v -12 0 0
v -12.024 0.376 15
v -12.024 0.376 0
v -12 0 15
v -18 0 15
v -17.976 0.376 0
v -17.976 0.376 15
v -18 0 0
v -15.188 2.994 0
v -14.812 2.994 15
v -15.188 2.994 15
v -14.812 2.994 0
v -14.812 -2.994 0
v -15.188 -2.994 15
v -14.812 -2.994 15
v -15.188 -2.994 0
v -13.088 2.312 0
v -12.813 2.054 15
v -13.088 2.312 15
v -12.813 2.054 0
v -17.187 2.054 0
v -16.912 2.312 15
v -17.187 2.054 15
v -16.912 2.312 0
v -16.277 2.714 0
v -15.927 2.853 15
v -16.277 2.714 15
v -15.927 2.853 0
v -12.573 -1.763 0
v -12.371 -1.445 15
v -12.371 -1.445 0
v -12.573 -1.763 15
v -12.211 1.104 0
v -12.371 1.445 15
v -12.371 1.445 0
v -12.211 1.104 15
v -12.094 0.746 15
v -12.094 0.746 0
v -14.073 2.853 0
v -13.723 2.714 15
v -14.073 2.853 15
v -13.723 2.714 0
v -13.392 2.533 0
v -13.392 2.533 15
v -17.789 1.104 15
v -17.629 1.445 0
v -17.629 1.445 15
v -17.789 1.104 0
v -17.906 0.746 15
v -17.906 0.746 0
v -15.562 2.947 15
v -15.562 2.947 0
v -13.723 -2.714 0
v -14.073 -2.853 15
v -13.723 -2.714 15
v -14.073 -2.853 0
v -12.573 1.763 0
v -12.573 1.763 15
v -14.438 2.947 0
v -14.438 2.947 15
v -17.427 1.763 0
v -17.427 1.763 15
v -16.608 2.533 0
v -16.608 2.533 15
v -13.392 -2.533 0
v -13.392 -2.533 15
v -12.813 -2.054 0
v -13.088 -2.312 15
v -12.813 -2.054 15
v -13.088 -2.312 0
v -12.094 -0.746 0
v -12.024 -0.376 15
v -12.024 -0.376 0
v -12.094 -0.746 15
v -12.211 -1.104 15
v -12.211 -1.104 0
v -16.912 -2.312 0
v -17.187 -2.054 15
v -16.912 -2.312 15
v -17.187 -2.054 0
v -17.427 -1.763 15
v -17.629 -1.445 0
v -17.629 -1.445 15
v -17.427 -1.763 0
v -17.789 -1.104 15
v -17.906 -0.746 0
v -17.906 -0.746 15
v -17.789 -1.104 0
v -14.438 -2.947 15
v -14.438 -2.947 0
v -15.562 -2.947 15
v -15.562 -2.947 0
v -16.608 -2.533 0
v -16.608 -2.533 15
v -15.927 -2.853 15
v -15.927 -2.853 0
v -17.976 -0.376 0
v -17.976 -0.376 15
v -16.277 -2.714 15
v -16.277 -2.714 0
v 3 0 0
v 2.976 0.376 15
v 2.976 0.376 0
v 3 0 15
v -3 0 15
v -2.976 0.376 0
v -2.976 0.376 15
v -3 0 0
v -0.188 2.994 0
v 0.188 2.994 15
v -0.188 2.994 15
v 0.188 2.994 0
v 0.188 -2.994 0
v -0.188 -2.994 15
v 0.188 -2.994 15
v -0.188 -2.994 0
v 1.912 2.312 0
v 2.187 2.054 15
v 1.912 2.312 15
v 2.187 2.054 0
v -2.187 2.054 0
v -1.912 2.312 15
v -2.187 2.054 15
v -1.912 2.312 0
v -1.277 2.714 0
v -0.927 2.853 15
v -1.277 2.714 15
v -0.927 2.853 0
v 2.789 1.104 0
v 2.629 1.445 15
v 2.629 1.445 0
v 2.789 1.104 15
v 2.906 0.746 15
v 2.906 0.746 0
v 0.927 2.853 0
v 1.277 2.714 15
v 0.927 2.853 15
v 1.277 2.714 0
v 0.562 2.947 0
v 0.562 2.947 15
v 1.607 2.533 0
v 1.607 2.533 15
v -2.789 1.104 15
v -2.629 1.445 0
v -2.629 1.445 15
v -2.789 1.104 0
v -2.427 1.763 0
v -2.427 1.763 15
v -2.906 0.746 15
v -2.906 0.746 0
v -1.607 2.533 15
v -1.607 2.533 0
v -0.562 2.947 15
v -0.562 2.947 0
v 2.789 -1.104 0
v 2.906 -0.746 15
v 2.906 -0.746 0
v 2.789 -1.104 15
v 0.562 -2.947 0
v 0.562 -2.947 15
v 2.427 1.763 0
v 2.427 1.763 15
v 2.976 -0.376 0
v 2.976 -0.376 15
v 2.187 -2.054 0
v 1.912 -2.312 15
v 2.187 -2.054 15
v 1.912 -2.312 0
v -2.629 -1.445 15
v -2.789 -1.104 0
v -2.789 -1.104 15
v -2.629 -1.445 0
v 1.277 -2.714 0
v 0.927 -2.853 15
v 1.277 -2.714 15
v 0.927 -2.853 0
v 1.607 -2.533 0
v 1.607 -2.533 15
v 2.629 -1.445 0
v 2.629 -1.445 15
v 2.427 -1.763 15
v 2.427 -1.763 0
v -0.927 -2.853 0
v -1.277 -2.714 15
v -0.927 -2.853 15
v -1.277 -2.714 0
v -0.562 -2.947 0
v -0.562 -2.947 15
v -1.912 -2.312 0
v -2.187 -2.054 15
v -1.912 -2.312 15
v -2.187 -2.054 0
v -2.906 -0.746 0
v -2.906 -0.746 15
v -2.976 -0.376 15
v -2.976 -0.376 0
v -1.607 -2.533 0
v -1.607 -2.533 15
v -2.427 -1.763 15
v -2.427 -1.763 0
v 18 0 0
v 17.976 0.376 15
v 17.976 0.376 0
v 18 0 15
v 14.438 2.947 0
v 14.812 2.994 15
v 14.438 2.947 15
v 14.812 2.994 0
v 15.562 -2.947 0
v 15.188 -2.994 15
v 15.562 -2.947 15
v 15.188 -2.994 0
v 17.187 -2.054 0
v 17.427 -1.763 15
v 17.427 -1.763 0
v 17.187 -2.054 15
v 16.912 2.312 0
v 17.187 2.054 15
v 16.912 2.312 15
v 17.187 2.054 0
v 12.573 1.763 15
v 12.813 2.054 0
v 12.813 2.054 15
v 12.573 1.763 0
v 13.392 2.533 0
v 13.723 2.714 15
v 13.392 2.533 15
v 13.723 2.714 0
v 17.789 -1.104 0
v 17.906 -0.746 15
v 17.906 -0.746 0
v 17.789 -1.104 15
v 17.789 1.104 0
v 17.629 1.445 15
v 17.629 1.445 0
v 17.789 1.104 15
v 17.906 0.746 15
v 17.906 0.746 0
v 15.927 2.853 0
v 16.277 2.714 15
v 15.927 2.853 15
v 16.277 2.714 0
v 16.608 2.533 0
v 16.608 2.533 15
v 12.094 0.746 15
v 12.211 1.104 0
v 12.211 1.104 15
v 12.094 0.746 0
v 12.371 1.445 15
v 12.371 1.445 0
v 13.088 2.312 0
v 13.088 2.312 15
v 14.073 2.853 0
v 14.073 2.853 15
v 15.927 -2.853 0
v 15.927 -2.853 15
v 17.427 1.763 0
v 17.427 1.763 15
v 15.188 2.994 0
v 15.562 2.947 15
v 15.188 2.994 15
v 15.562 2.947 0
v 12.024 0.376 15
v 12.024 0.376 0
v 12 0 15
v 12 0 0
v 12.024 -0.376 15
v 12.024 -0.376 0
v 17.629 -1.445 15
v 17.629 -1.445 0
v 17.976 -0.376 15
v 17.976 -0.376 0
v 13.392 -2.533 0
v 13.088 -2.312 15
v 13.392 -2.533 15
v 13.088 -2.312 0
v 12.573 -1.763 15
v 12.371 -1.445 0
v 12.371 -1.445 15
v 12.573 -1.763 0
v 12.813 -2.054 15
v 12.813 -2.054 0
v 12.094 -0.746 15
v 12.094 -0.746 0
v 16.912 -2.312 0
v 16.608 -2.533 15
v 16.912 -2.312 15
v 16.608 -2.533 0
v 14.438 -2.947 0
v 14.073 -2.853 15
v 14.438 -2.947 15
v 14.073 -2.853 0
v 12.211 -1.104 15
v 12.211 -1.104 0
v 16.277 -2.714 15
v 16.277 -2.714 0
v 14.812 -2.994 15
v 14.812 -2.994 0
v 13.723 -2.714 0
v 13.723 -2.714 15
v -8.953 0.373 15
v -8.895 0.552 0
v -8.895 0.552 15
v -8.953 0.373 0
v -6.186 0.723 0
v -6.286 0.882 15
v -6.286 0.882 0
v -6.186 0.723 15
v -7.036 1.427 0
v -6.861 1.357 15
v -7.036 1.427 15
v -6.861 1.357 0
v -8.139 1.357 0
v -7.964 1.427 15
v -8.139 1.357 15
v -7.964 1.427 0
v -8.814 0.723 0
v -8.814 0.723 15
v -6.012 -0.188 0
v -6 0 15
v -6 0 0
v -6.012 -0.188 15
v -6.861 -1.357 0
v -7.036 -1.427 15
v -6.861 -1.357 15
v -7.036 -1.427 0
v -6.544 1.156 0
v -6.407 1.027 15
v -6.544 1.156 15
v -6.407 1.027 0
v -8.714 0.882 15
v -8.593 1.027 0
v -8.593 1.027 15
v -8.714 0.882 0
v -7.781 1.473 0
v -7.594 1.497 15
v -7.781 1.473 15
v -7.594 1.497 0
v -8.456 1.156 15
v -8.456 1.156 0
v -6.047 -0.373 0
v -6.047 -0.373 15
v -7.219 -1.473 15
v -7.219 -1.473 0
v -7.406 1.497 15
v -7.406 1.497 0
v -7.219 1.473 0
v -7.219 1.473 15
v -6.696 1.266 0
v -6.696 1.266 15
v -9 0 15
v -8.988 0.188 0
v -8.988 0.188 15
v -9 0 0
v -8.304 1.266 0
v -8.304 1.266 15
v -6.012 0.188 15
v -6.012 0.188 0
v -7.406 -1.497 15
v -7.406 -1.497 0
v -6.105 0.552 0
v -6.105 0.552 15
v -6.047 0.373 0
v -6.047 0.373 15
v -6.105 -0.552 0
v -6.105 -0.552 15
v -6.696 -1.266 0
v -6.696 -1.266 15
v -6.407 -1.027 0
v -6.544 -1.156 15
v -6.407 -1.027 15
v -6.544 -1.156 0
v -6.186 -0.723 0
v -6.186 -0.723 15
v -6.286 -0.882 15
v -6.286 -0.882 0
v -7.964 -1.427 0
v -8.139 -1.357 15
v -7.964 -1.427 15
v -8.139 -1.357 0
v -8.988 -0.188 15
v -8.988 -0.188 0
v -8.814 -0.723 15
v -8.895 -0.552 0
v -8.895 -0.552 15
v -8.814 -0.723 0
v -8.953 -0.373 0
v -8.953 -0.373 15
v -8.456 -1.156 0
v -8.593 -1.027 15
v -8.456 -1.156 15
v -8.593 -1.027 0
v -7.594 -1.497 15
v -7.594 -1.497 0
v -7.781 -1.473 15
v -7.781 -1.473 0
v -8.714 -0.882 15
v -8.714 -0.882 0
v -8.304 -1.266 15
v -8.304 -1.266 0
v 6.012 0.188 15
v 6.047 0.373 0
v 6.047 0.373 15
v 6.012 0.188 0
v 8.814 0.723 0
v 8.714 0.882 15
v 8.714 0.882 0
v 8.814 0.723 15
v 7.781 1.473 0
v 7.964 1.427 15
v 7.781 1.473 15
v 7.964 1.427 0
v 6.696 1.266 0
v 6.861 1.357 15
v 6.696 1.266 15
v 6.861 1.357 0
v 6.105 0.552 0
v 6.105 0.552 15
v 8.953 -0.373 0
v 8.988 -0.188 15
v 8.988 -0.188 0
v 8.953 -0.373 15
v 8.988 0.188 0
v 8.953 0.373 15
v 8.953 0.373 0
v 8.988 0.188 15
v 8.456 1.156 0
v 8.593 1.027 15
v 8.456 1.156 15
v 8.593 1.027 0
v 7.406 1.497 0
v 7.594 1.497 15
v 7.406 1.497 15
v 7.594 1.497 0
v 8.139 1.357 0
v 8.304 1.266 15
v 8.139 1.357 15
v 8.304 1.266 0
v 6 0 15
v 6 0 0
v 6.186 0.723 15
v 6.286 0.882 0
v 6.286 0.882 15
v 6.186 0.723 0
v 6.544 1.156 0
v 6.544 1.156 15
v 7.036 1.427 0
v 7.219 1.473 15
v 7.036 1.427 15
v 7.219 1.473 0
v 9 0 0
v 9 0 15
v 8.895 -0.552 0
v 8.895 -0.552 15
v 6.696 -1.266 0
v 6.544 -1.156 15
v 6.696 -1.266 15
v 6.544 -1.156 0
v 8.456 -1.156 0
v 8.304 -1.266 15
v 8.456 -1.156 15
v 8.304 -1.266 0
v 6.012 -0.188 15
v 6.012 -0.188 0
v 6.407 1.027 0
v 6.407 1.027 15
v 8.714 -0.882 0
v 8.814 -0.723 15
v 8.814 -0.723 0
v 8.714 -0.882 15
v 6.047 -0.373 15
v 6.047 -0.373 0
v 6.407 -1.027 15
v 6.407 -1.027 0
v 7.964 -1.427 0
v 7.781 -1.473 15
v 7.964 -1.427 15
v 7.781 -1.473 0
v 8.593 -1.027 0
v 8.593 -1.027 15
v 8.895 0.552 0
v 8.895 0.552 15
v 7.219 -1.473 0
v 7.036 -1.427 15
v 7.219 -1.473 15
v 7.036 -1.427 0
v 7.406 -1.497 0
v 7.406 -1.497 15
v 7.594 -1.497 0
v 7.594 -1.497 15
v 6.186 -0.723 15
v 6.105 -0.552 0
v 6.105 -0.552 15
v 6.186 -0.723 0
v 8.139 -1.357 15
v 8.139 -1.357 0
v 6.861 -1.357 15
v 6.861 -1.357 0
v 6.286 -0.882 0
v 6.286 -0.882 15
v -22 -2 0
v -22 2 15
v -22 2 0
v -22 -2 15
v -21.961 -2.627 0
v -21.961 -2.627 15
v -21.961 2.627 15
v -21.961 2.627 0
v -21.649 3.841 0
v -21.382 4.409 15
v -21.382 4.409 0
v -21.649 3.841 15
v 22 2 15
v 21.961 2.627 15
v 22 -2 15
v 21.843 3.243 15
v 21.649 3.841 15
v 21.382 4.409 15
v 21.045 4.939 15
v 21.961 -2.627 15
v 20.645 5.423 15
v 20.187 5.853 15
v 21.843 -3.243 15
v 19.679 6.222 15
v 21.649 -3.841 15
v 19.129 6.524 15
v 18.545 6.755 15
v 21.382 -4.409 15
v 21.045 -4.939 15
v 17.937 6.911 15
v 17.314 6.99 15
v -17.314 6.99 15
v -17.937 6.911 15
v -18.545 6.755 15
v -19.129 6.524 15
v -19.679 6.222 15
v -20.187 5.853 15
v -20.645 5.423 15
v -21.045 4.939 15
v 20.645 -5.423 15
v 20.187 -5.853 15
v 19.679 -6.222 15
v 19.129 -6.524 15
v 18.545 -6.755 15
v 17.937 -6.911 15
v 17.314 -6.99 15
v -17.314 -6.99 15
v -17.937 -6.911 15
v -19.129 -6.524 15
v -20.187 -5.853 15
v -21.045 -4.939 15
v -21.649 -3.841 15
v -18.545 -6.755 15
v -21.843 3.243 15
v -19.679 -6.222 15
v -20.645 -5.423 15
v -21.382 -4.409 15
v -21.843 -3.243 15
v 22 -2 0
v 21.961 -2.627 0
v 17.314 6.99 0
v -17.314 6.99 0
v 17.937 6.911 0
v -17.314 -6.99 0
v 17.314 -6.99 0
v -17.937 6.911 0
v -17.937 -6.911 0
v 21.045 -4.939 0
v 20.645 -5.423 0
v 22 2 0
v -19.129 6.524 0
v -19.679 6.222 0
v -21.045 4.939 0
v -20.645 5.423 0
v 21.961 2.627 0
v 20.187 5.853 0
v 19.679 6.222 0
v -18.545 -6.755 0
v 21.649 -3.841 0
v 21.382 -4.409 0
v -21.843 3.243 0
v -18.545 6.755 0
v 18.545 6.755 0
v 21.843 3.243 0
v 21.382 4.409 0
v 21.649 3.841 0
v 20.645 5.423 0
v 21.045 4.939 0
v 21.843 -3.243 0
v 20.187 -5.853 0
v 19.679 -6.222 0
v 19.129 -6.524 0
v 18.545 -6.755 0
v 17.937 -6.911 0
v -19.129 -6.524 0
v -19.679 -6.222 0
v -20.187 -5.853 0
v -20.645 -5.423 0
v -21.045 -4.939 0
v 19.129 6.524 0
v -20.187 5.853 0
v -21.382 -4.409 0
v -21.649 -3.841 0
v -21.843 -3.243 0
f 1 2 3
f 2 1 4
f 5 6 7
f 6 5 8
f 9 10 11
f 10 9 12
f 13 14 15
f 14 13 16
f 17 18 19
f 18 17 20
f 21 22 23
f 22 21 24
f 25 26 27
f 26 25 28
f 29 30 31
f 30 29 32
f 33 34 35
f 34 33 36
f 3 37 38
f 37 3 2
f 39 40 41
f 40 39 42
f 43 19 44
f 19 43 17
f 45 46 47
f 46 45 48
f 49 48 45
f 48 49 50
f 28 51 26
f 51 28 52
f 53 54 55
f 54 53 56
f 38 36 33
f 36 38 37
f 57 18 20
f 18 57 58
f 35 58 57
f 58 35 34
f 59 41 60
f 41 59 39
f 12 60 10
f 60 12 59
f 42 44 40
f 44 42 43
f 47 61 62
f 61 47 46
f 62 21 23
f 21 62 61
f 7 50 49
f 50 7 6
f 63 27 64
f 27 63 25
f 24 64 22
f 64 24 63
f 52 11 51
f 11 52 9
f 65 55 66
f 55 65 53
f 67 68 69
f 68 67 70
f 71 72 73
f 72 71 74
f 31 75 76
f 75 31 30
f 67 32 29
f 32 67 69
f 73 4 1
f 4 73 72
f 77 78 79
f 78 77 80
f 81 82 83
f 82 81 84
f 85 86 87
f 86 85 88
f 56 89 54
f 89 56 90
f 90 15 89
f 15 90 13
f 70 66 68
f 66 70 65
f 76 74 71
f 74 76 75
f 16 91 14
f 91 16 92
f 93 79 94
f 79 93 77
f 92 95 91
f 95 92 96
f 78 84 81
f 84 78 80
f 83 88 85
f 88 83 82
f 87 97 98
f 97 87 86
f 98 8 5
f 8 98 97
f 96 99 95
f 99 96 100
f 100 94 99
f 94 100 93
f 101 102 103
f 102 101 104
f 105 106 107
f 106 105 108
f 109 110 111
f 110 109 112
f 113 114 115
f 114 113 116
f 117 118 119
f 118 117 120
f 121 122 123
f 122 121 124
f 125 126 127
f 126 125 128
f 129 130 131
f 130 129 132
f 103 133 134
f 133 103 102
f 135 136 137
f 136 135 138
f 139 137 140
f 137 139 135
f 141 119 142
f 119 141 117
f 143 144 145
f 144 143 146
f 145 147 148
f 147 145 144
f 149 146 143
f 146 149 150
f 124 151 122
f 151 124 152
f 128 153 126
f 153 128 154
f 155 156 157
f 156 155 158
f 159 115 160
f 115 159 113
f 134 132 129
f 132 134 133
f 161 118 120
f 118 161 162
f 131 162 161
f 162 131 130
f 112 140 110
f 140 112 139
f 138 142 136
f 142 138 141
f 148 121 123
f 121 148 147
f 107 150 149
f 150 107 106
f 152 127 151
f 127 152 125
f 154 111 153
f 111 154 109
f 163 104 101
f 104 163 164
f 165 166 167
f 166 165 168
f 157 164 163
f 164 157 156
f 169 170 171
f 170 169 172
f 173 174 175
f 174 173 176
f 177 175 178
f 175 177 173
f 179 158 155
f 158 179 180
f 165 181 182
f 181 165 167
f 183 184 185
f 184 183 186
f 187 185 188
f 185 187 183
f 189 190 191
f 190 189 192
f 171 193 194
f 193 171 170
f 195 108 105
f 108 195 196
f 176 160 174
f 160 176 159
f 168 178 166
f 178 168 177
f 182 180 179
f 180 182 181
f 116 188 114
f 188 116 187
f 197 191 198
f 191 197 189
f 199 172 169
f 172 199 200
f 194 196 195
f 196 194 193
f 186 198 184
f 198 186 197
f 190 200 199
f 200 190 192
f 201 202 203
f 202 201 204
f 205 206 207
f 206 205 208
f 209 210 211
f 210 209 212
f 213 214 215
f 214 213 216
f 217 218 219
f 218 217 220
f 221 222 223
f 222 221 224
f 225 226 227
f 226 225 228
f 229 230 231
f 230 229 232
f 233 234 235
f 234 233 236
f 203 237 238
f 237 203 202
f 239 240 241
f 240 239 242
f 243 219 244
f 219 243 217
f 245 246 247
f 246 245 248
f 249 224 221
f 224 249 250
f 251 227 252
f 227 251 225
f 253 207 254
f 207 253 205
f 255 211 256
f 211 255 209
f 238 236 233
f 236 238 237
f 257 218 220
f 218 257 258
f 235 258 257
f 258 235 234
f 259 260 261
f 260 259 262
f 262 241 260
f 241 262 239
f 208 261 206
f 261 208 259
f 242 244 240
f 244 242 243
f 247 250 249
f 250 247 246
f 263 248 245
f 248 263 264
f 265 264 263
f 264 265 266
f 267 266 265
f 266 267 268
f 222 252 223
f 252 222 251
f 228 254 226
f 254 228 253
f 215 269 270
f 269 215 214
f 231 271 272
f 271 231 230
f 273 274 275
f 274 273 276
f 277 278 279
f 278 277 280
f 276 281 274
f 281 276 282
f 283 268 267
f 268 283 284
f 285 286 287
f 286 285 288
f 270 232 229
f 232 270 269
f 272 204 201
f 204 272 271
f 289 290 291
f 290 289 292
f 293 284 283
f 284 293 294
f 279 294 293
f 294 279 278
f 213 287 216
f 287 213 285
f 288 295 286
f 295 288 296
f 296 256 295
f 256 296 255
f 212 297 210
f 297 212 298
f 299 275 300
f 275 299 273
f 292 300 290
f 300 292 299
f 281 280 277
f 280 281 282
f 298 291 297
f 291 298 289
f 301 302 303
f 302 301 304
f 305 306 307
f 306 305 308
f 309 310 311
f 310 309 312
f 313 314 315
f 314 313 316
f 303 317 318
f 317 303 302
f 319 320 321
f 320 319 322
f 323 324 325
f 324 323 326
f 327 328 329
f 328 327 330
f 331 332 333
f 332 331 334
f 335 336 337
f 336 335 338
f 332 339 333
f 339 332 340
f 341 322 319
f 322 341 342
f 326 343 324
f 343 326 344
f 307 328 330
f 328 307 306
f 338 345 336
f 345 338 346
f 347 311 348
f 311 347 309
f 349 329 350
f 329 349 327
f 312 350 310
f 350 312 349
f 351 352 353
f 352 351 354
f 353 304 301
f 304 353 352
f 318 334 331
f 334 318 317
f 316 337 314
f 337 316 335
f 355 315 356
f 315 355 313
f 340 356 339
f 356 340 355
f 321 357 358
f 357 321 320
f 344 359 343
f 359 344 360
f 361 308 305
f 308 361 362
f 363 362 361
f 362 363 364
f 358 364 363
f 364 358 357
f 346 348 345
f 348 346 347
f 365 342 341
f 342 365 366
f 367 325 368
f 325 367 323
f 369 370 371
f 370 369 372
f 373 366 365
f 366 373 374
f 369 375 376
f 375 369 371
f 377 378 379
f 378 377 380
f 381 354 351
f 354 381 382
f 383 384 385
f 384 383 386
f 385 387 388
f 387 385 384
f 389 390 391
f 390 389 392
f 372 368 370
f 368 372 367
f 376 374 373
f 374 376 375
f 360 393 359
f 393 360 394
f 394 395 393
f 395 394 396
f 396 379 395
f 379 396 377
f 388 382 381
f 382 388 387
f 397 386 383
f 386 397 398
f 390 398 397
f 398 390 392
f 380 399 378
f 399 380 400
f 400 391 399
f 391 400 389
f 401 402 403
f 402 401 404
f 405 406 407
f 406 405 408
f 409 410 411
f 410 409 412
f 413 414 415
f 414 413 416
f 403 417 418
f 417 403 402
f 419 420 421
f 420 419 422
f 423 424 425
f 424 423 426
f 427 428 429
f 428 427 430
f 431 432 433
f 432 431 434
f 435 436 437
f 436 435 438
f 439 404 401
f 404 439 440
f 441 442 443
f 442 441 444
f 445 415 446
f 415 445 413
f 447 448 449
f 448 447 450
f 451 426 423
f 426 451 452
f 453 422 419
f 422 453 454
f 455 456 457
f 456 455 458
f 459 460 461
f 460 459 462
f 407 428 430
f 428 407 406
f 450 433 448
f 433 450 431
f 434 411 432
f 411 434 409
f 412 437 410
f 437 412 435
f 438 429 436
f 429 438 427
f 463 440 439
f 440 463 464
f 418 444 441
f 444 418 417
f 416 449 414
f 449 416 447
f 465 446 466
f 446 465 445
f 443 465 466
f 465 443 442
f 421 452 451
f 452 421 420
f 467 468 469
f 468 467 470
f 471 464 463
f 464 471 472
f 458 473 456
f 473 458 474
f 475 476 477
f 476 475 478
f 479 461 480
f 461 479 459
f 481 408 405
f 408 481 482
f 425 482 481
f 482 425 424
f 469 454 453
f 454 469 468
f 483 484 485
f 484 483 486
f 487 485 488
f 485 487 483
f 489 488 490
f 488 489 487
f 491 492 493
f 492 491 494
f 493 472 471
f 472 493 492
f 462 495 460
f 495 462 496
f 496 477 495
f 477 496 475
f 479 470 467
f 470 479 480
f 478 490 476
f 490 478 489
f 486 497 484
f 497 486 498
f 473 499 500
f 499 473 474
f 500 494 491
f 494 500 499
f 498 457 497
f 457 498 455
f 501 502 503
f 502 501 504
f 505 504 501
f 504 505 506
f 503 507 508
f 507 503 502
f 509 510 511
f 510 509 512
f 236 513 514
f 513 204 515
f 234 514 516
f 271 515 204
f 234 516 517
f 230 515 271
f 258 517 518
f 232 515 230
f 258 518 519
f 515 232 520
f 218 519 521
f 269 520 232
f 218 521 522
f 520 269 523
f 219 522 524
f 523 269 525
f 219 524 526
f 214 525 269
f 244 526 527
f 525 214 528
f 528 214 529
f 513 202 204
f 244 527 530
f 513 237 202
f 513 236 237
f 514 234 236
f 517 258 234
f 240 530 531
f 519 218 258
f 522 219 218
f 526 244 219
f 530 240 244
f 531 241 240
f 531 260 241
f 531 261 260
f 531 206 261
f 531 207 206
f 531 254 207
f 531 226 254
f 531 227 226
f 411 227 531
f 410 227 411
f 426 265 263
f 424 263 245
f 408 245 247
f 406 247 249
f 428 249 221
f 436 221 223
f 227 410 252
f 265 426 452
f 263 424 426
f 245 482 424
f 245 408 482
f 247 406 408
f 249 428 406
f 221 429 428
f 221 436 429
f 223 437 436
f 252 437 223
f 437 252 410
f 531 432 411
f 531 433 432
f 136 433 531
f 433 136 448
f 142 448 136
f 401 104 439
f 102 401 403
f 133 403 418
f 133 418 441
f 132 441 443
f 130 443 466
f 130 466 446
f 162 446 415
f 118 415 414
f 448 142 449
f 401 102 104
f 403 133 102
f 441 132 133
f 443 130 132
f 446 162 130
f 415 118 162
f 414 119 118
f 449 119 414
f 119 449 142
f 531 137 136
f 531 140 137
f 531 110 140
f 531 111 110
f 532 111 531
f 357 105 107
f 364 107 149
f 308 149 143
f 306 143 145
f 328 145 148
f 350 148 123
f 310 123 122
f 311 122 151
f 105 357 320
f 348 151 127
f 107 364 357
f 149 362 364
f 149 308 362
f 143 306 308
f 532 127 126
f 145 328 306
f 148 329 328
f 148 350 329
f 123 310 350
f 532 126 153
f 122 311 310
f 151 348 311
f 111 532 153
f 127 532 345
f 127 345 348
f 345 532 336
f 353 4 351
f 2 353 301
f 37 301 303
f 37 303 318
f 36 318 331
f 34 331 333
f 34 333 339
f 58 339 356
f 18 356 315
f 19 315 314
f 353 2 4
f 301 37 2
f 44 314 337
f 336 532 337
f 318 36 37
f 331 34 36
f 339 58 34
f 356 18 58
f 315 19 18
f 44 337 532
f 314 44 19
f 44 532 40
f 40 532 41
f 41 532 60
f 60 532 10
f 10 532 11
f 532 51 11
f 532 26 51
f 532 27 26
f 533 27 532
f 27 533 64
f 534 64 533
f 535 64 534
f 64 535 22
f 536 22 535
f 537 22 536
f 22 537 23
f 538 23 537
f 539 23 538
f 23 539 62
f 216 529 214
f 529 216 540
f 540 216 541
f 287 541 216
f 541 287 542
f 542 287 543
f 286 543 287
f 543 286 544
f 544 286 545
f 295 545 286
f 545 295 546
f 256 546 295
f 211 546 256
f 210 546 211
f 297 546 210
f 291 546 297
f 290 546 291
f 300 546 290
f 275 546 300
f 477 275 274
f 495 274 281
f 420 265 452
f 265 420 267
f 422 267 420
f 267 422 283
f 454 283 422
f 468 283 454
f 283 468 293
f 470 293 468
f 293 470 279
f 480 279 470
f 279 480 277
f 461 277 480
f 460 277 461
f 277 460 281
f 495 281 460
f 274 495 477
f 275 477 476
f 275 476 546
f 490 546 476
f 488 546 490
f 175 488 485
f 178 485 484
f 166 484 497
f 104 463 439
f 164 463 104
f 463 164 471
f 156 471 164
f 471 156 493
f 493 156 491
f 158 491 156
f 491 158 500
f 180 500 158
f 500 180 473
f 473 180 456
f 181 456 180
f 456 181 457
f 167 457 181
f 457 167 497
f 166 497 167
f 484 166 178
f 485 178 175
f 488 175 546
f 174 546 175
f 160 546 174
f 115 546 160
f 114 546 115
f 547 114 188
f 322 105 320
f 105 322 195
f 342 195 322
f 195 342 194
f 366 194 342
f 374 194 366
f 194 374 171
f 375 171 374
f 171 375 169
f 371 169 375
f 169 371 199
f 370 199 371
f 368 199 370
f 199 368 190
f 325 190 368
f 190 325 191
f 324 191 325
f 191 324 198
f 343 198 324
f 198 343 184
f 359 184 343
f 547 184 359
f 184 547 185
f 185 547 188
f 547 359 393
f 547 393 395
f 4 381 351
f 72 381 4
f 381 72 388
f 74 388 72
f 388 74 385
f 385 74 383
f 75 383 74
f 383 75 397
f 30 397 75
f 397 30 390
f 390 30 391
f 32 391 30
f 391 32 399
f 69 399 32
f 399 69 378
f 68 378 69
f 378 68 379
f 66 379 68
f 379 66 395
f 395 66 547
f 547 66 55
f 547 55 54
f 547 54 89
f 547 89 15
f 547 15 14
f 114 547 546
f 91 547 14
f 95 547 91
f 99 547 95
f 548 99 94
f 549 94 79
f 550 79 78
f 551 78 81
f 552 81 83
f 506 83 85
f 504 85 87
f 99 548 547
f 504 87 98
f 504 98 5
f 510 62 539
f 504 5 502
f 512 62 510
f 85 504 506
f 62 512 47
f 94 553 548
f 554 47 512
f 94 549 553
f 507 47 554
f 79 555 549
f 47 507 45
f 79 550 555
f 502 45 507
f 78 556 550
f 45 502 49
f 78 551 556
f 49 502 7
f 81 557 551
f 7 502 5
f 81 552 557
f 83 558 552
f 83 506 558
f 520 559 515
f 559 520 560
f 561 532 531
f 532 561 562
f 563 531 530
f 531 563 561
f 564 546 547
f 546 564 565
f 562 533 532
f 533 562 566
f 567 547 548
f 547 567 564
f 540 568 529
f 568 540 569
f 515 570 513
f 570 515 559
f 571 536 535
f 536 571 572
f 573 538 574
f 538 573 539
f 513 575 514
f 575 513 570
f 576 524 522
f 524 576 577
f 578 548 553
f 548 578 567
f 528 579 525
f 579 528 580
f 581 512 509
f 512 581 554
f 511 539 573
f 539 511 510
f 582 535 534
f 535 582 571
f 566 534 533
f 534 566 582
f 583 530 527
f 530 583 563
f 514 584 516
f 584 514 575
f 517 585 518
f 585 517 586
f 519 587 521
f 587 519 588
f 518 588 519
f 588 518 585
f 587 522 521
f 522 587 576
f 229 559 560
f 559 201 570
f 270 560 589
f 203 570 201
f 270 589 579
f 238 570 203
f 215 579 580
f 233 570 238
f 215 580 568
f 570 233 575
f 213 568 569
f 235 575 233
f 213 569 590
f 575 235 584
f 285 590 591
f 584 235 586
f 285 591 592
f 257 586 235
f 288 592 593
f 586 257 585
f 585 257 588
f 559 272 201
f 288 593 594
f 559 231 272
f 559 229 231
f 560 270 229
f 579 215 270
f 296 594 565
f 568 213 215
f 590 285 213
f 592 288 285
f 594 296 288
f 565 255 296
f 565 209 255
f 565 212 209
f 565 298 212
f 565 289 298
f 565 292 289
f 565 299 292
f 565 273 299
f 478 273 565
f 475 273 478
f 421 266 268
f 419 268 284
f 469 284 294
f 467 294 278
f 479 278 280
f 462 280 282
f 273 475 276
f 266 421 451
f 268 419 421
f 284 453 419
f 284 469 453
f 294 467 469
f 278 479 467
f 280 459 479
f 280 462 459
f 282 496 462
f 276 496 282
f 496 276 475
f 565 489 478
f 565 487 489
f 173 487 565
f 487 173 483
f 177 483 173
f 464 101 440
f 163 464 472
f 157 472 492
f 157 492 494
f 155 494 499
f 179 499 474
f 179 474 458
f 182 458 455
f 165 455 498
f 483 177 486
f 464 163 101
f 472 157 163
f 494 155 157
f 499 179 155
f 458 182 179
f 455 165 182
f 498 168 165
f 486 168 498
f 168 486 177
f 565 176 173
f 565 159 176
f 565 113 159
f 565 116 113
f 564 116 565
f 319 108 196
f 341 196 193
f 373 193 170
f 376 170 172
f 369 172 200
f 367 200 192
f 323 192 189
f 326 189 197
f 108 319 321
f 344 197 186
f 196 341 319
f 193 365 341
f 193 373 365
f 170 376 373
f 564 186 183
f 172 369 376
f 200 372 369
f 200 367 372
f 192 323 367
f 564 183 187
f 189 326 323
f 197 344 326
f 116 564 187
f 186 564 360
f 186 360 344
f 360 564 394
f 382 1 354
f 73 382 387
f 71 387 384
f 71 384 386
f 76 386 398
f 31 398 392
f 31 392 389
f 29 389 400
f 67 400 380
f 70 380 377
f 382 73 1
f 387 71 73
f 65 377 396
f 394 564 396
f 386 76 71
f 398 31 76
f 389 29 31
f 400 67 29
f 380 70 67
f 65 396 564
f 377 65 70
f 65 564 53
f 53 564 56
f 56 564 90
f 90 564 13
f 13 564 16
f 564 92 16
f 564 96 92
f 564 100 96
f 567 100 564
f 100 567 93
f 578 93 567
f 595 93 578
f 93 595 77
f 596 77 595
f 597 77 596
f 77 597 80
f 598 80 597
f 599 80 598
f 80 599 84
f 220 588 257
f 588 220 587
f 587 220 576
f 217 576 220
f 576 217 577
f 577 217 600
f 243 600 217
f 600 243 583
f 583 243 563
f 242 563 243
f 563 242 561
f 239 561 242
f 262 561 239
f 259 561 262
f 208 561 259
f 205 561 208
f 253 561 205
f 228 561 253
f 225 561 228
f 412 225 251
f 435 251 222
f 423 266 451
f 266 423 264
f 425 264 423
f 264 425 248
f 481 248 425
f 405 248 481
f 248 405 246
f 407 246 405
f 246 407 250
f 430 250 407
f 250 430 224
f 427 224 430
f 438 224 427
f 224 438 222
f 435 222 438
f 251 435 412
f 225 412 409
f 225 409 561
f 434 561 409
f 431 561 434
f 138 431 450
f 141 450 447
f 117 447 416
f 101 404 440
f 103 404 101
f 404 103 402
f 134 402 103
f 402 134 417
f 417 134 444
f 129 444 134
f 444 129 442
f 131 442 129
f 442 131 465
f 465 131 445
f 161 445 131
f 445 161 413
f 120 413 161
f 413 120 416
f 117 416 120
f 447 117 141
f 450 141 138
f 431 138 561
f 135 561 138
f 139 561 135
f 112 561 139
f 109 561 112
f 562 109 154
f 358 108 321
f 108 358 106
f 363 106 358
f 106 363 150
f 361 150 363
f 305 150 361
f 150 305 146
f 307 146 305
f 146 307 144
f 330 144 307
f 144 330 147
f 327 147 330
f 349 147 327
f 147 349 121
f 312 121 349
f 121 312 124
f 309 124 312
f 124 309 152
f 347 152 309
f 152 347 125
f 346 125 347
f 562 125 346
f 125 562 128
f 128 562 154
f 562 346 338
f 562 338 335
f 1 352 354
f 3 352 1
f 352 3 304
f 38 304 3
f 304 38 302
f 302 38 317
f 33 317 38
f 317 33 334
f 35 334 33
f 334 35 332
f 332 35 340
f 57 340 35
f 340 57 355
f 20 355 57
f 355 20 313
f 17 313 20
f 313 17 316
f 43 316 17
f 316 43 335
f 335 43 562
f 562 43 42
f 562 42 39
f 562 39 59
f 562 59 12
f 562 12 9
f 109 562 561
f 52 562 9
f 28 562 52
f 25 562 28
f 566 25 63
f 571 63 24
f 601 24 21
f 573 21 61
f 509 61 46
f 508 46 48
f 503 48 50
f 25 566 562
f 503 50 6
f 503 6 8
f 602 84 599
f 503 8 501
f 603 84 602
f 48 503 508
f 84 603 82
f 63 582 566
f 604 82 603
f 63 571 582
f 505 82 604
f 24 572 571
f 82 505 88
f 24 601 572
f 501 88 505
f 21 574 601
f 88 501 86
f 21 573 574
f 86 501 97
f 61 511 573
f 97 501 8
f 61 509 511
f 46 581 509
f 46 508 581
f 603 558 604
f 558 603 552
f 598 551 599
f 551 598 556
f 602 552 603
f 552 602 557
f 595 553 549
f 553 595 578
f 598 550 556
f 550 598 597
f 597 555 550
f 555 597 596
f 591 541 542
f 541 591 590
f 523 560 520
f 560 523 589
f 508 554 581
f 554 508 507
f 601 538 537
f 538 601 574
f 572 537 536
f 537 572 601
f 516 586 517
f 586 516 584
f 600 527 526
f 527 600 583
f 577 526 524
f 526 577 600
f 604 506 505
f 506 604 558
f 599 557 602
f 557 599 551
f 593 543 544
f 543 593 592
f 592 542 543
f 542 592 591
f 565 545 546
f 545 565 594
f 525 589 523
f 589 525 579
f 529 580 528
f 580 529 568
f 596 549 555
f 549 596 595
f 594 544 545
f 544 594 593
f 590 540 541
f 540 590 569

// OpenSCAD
$fn = 50;


difference() {
	union() {
		*color(alpha = 1.0000000000, c = "gray") {
			translate(v = [0, 7, 0]) {
				linear_extrude(height = 1) {
					text(font = "Arial:style=Bold", halign = "center", size = 4.5000000000, text = "COMMENT plate main", valign = "center");
				}
			}
		}
		hull() {
			translate(v = [-17.0000000000, 2.0000000000, 0]) {
				cylinder(h = 15, r = 5);
			}
			translate(v = [17.0000000000, 2.0000000000, 0]) {
				cylinder(h = 15, r = 5);
			}
			translate(v = [-17.0000000000, -2.0000000000, 0]) {
				cylinder(h = 15, r = 5);
			}
			translate(v = [17.0000000000, -2.0000000000, 0]) {
				cylinder(h = 15, r = 5);
			}
		}
	}
	union() {
		*color(alpha = 1.0000000000, c = "gray") {
			translate(v = [0, 7, 0]) {
				linear_extrude(height = 1) {
					text(font = "Arial:style=Bold", halign = "center", size = 4.5000000000, text = "COMMENT holes main", valign = "center");
				}
			}
		}
		translate(v = [-15.0000000000, 0.0000000000, 0]) {
			translate(v = [0, 0, -100]) {
				cylinder(h = 200, r = 3.0000000000);
			}
		}
		translate(v = [0, 0, -100]) {
			cylinder(h = 200, r = 3.0000000000);
		}
		translate(v = [15.0000000000, 0.0000000000, 0]) {
			translate(v = [0, 0, -100]) {
				cylinder(h = 200, r = 3.0000000000);
			}
		}
		translate(v = [-15.0000000000, 0.0000000000, 0]) {
			translate(v = [0, 0, -100]) {
				cylinder(h = 200, r = 1.5000000000);
			}
		}
		translate(v = [-7.5000000000, 0.0000000000, 0]) {
			translate(v = [0, 0, -100]) {
				cylinder(h = 200, r = 1.5000000000);
			}
		}
		translate(v = [0, 0, -100]) {
			cylinder(h = 200, r = 1.5000000000);
		}
		translate(v = [7.5000000000, 0.0000000000, 0]) {
			translate(v = [0, 0, -100]) {
				cylinder(h = 200, r = 1.5000000000);
			}
		}
		translate(v = [15.0000000000, 0.0000000000, 0]) {
			translate(v = [0, 0, -100]) {
				cylinder(h = 200, r = 1.5000000000);
			}
		}
	}
}
